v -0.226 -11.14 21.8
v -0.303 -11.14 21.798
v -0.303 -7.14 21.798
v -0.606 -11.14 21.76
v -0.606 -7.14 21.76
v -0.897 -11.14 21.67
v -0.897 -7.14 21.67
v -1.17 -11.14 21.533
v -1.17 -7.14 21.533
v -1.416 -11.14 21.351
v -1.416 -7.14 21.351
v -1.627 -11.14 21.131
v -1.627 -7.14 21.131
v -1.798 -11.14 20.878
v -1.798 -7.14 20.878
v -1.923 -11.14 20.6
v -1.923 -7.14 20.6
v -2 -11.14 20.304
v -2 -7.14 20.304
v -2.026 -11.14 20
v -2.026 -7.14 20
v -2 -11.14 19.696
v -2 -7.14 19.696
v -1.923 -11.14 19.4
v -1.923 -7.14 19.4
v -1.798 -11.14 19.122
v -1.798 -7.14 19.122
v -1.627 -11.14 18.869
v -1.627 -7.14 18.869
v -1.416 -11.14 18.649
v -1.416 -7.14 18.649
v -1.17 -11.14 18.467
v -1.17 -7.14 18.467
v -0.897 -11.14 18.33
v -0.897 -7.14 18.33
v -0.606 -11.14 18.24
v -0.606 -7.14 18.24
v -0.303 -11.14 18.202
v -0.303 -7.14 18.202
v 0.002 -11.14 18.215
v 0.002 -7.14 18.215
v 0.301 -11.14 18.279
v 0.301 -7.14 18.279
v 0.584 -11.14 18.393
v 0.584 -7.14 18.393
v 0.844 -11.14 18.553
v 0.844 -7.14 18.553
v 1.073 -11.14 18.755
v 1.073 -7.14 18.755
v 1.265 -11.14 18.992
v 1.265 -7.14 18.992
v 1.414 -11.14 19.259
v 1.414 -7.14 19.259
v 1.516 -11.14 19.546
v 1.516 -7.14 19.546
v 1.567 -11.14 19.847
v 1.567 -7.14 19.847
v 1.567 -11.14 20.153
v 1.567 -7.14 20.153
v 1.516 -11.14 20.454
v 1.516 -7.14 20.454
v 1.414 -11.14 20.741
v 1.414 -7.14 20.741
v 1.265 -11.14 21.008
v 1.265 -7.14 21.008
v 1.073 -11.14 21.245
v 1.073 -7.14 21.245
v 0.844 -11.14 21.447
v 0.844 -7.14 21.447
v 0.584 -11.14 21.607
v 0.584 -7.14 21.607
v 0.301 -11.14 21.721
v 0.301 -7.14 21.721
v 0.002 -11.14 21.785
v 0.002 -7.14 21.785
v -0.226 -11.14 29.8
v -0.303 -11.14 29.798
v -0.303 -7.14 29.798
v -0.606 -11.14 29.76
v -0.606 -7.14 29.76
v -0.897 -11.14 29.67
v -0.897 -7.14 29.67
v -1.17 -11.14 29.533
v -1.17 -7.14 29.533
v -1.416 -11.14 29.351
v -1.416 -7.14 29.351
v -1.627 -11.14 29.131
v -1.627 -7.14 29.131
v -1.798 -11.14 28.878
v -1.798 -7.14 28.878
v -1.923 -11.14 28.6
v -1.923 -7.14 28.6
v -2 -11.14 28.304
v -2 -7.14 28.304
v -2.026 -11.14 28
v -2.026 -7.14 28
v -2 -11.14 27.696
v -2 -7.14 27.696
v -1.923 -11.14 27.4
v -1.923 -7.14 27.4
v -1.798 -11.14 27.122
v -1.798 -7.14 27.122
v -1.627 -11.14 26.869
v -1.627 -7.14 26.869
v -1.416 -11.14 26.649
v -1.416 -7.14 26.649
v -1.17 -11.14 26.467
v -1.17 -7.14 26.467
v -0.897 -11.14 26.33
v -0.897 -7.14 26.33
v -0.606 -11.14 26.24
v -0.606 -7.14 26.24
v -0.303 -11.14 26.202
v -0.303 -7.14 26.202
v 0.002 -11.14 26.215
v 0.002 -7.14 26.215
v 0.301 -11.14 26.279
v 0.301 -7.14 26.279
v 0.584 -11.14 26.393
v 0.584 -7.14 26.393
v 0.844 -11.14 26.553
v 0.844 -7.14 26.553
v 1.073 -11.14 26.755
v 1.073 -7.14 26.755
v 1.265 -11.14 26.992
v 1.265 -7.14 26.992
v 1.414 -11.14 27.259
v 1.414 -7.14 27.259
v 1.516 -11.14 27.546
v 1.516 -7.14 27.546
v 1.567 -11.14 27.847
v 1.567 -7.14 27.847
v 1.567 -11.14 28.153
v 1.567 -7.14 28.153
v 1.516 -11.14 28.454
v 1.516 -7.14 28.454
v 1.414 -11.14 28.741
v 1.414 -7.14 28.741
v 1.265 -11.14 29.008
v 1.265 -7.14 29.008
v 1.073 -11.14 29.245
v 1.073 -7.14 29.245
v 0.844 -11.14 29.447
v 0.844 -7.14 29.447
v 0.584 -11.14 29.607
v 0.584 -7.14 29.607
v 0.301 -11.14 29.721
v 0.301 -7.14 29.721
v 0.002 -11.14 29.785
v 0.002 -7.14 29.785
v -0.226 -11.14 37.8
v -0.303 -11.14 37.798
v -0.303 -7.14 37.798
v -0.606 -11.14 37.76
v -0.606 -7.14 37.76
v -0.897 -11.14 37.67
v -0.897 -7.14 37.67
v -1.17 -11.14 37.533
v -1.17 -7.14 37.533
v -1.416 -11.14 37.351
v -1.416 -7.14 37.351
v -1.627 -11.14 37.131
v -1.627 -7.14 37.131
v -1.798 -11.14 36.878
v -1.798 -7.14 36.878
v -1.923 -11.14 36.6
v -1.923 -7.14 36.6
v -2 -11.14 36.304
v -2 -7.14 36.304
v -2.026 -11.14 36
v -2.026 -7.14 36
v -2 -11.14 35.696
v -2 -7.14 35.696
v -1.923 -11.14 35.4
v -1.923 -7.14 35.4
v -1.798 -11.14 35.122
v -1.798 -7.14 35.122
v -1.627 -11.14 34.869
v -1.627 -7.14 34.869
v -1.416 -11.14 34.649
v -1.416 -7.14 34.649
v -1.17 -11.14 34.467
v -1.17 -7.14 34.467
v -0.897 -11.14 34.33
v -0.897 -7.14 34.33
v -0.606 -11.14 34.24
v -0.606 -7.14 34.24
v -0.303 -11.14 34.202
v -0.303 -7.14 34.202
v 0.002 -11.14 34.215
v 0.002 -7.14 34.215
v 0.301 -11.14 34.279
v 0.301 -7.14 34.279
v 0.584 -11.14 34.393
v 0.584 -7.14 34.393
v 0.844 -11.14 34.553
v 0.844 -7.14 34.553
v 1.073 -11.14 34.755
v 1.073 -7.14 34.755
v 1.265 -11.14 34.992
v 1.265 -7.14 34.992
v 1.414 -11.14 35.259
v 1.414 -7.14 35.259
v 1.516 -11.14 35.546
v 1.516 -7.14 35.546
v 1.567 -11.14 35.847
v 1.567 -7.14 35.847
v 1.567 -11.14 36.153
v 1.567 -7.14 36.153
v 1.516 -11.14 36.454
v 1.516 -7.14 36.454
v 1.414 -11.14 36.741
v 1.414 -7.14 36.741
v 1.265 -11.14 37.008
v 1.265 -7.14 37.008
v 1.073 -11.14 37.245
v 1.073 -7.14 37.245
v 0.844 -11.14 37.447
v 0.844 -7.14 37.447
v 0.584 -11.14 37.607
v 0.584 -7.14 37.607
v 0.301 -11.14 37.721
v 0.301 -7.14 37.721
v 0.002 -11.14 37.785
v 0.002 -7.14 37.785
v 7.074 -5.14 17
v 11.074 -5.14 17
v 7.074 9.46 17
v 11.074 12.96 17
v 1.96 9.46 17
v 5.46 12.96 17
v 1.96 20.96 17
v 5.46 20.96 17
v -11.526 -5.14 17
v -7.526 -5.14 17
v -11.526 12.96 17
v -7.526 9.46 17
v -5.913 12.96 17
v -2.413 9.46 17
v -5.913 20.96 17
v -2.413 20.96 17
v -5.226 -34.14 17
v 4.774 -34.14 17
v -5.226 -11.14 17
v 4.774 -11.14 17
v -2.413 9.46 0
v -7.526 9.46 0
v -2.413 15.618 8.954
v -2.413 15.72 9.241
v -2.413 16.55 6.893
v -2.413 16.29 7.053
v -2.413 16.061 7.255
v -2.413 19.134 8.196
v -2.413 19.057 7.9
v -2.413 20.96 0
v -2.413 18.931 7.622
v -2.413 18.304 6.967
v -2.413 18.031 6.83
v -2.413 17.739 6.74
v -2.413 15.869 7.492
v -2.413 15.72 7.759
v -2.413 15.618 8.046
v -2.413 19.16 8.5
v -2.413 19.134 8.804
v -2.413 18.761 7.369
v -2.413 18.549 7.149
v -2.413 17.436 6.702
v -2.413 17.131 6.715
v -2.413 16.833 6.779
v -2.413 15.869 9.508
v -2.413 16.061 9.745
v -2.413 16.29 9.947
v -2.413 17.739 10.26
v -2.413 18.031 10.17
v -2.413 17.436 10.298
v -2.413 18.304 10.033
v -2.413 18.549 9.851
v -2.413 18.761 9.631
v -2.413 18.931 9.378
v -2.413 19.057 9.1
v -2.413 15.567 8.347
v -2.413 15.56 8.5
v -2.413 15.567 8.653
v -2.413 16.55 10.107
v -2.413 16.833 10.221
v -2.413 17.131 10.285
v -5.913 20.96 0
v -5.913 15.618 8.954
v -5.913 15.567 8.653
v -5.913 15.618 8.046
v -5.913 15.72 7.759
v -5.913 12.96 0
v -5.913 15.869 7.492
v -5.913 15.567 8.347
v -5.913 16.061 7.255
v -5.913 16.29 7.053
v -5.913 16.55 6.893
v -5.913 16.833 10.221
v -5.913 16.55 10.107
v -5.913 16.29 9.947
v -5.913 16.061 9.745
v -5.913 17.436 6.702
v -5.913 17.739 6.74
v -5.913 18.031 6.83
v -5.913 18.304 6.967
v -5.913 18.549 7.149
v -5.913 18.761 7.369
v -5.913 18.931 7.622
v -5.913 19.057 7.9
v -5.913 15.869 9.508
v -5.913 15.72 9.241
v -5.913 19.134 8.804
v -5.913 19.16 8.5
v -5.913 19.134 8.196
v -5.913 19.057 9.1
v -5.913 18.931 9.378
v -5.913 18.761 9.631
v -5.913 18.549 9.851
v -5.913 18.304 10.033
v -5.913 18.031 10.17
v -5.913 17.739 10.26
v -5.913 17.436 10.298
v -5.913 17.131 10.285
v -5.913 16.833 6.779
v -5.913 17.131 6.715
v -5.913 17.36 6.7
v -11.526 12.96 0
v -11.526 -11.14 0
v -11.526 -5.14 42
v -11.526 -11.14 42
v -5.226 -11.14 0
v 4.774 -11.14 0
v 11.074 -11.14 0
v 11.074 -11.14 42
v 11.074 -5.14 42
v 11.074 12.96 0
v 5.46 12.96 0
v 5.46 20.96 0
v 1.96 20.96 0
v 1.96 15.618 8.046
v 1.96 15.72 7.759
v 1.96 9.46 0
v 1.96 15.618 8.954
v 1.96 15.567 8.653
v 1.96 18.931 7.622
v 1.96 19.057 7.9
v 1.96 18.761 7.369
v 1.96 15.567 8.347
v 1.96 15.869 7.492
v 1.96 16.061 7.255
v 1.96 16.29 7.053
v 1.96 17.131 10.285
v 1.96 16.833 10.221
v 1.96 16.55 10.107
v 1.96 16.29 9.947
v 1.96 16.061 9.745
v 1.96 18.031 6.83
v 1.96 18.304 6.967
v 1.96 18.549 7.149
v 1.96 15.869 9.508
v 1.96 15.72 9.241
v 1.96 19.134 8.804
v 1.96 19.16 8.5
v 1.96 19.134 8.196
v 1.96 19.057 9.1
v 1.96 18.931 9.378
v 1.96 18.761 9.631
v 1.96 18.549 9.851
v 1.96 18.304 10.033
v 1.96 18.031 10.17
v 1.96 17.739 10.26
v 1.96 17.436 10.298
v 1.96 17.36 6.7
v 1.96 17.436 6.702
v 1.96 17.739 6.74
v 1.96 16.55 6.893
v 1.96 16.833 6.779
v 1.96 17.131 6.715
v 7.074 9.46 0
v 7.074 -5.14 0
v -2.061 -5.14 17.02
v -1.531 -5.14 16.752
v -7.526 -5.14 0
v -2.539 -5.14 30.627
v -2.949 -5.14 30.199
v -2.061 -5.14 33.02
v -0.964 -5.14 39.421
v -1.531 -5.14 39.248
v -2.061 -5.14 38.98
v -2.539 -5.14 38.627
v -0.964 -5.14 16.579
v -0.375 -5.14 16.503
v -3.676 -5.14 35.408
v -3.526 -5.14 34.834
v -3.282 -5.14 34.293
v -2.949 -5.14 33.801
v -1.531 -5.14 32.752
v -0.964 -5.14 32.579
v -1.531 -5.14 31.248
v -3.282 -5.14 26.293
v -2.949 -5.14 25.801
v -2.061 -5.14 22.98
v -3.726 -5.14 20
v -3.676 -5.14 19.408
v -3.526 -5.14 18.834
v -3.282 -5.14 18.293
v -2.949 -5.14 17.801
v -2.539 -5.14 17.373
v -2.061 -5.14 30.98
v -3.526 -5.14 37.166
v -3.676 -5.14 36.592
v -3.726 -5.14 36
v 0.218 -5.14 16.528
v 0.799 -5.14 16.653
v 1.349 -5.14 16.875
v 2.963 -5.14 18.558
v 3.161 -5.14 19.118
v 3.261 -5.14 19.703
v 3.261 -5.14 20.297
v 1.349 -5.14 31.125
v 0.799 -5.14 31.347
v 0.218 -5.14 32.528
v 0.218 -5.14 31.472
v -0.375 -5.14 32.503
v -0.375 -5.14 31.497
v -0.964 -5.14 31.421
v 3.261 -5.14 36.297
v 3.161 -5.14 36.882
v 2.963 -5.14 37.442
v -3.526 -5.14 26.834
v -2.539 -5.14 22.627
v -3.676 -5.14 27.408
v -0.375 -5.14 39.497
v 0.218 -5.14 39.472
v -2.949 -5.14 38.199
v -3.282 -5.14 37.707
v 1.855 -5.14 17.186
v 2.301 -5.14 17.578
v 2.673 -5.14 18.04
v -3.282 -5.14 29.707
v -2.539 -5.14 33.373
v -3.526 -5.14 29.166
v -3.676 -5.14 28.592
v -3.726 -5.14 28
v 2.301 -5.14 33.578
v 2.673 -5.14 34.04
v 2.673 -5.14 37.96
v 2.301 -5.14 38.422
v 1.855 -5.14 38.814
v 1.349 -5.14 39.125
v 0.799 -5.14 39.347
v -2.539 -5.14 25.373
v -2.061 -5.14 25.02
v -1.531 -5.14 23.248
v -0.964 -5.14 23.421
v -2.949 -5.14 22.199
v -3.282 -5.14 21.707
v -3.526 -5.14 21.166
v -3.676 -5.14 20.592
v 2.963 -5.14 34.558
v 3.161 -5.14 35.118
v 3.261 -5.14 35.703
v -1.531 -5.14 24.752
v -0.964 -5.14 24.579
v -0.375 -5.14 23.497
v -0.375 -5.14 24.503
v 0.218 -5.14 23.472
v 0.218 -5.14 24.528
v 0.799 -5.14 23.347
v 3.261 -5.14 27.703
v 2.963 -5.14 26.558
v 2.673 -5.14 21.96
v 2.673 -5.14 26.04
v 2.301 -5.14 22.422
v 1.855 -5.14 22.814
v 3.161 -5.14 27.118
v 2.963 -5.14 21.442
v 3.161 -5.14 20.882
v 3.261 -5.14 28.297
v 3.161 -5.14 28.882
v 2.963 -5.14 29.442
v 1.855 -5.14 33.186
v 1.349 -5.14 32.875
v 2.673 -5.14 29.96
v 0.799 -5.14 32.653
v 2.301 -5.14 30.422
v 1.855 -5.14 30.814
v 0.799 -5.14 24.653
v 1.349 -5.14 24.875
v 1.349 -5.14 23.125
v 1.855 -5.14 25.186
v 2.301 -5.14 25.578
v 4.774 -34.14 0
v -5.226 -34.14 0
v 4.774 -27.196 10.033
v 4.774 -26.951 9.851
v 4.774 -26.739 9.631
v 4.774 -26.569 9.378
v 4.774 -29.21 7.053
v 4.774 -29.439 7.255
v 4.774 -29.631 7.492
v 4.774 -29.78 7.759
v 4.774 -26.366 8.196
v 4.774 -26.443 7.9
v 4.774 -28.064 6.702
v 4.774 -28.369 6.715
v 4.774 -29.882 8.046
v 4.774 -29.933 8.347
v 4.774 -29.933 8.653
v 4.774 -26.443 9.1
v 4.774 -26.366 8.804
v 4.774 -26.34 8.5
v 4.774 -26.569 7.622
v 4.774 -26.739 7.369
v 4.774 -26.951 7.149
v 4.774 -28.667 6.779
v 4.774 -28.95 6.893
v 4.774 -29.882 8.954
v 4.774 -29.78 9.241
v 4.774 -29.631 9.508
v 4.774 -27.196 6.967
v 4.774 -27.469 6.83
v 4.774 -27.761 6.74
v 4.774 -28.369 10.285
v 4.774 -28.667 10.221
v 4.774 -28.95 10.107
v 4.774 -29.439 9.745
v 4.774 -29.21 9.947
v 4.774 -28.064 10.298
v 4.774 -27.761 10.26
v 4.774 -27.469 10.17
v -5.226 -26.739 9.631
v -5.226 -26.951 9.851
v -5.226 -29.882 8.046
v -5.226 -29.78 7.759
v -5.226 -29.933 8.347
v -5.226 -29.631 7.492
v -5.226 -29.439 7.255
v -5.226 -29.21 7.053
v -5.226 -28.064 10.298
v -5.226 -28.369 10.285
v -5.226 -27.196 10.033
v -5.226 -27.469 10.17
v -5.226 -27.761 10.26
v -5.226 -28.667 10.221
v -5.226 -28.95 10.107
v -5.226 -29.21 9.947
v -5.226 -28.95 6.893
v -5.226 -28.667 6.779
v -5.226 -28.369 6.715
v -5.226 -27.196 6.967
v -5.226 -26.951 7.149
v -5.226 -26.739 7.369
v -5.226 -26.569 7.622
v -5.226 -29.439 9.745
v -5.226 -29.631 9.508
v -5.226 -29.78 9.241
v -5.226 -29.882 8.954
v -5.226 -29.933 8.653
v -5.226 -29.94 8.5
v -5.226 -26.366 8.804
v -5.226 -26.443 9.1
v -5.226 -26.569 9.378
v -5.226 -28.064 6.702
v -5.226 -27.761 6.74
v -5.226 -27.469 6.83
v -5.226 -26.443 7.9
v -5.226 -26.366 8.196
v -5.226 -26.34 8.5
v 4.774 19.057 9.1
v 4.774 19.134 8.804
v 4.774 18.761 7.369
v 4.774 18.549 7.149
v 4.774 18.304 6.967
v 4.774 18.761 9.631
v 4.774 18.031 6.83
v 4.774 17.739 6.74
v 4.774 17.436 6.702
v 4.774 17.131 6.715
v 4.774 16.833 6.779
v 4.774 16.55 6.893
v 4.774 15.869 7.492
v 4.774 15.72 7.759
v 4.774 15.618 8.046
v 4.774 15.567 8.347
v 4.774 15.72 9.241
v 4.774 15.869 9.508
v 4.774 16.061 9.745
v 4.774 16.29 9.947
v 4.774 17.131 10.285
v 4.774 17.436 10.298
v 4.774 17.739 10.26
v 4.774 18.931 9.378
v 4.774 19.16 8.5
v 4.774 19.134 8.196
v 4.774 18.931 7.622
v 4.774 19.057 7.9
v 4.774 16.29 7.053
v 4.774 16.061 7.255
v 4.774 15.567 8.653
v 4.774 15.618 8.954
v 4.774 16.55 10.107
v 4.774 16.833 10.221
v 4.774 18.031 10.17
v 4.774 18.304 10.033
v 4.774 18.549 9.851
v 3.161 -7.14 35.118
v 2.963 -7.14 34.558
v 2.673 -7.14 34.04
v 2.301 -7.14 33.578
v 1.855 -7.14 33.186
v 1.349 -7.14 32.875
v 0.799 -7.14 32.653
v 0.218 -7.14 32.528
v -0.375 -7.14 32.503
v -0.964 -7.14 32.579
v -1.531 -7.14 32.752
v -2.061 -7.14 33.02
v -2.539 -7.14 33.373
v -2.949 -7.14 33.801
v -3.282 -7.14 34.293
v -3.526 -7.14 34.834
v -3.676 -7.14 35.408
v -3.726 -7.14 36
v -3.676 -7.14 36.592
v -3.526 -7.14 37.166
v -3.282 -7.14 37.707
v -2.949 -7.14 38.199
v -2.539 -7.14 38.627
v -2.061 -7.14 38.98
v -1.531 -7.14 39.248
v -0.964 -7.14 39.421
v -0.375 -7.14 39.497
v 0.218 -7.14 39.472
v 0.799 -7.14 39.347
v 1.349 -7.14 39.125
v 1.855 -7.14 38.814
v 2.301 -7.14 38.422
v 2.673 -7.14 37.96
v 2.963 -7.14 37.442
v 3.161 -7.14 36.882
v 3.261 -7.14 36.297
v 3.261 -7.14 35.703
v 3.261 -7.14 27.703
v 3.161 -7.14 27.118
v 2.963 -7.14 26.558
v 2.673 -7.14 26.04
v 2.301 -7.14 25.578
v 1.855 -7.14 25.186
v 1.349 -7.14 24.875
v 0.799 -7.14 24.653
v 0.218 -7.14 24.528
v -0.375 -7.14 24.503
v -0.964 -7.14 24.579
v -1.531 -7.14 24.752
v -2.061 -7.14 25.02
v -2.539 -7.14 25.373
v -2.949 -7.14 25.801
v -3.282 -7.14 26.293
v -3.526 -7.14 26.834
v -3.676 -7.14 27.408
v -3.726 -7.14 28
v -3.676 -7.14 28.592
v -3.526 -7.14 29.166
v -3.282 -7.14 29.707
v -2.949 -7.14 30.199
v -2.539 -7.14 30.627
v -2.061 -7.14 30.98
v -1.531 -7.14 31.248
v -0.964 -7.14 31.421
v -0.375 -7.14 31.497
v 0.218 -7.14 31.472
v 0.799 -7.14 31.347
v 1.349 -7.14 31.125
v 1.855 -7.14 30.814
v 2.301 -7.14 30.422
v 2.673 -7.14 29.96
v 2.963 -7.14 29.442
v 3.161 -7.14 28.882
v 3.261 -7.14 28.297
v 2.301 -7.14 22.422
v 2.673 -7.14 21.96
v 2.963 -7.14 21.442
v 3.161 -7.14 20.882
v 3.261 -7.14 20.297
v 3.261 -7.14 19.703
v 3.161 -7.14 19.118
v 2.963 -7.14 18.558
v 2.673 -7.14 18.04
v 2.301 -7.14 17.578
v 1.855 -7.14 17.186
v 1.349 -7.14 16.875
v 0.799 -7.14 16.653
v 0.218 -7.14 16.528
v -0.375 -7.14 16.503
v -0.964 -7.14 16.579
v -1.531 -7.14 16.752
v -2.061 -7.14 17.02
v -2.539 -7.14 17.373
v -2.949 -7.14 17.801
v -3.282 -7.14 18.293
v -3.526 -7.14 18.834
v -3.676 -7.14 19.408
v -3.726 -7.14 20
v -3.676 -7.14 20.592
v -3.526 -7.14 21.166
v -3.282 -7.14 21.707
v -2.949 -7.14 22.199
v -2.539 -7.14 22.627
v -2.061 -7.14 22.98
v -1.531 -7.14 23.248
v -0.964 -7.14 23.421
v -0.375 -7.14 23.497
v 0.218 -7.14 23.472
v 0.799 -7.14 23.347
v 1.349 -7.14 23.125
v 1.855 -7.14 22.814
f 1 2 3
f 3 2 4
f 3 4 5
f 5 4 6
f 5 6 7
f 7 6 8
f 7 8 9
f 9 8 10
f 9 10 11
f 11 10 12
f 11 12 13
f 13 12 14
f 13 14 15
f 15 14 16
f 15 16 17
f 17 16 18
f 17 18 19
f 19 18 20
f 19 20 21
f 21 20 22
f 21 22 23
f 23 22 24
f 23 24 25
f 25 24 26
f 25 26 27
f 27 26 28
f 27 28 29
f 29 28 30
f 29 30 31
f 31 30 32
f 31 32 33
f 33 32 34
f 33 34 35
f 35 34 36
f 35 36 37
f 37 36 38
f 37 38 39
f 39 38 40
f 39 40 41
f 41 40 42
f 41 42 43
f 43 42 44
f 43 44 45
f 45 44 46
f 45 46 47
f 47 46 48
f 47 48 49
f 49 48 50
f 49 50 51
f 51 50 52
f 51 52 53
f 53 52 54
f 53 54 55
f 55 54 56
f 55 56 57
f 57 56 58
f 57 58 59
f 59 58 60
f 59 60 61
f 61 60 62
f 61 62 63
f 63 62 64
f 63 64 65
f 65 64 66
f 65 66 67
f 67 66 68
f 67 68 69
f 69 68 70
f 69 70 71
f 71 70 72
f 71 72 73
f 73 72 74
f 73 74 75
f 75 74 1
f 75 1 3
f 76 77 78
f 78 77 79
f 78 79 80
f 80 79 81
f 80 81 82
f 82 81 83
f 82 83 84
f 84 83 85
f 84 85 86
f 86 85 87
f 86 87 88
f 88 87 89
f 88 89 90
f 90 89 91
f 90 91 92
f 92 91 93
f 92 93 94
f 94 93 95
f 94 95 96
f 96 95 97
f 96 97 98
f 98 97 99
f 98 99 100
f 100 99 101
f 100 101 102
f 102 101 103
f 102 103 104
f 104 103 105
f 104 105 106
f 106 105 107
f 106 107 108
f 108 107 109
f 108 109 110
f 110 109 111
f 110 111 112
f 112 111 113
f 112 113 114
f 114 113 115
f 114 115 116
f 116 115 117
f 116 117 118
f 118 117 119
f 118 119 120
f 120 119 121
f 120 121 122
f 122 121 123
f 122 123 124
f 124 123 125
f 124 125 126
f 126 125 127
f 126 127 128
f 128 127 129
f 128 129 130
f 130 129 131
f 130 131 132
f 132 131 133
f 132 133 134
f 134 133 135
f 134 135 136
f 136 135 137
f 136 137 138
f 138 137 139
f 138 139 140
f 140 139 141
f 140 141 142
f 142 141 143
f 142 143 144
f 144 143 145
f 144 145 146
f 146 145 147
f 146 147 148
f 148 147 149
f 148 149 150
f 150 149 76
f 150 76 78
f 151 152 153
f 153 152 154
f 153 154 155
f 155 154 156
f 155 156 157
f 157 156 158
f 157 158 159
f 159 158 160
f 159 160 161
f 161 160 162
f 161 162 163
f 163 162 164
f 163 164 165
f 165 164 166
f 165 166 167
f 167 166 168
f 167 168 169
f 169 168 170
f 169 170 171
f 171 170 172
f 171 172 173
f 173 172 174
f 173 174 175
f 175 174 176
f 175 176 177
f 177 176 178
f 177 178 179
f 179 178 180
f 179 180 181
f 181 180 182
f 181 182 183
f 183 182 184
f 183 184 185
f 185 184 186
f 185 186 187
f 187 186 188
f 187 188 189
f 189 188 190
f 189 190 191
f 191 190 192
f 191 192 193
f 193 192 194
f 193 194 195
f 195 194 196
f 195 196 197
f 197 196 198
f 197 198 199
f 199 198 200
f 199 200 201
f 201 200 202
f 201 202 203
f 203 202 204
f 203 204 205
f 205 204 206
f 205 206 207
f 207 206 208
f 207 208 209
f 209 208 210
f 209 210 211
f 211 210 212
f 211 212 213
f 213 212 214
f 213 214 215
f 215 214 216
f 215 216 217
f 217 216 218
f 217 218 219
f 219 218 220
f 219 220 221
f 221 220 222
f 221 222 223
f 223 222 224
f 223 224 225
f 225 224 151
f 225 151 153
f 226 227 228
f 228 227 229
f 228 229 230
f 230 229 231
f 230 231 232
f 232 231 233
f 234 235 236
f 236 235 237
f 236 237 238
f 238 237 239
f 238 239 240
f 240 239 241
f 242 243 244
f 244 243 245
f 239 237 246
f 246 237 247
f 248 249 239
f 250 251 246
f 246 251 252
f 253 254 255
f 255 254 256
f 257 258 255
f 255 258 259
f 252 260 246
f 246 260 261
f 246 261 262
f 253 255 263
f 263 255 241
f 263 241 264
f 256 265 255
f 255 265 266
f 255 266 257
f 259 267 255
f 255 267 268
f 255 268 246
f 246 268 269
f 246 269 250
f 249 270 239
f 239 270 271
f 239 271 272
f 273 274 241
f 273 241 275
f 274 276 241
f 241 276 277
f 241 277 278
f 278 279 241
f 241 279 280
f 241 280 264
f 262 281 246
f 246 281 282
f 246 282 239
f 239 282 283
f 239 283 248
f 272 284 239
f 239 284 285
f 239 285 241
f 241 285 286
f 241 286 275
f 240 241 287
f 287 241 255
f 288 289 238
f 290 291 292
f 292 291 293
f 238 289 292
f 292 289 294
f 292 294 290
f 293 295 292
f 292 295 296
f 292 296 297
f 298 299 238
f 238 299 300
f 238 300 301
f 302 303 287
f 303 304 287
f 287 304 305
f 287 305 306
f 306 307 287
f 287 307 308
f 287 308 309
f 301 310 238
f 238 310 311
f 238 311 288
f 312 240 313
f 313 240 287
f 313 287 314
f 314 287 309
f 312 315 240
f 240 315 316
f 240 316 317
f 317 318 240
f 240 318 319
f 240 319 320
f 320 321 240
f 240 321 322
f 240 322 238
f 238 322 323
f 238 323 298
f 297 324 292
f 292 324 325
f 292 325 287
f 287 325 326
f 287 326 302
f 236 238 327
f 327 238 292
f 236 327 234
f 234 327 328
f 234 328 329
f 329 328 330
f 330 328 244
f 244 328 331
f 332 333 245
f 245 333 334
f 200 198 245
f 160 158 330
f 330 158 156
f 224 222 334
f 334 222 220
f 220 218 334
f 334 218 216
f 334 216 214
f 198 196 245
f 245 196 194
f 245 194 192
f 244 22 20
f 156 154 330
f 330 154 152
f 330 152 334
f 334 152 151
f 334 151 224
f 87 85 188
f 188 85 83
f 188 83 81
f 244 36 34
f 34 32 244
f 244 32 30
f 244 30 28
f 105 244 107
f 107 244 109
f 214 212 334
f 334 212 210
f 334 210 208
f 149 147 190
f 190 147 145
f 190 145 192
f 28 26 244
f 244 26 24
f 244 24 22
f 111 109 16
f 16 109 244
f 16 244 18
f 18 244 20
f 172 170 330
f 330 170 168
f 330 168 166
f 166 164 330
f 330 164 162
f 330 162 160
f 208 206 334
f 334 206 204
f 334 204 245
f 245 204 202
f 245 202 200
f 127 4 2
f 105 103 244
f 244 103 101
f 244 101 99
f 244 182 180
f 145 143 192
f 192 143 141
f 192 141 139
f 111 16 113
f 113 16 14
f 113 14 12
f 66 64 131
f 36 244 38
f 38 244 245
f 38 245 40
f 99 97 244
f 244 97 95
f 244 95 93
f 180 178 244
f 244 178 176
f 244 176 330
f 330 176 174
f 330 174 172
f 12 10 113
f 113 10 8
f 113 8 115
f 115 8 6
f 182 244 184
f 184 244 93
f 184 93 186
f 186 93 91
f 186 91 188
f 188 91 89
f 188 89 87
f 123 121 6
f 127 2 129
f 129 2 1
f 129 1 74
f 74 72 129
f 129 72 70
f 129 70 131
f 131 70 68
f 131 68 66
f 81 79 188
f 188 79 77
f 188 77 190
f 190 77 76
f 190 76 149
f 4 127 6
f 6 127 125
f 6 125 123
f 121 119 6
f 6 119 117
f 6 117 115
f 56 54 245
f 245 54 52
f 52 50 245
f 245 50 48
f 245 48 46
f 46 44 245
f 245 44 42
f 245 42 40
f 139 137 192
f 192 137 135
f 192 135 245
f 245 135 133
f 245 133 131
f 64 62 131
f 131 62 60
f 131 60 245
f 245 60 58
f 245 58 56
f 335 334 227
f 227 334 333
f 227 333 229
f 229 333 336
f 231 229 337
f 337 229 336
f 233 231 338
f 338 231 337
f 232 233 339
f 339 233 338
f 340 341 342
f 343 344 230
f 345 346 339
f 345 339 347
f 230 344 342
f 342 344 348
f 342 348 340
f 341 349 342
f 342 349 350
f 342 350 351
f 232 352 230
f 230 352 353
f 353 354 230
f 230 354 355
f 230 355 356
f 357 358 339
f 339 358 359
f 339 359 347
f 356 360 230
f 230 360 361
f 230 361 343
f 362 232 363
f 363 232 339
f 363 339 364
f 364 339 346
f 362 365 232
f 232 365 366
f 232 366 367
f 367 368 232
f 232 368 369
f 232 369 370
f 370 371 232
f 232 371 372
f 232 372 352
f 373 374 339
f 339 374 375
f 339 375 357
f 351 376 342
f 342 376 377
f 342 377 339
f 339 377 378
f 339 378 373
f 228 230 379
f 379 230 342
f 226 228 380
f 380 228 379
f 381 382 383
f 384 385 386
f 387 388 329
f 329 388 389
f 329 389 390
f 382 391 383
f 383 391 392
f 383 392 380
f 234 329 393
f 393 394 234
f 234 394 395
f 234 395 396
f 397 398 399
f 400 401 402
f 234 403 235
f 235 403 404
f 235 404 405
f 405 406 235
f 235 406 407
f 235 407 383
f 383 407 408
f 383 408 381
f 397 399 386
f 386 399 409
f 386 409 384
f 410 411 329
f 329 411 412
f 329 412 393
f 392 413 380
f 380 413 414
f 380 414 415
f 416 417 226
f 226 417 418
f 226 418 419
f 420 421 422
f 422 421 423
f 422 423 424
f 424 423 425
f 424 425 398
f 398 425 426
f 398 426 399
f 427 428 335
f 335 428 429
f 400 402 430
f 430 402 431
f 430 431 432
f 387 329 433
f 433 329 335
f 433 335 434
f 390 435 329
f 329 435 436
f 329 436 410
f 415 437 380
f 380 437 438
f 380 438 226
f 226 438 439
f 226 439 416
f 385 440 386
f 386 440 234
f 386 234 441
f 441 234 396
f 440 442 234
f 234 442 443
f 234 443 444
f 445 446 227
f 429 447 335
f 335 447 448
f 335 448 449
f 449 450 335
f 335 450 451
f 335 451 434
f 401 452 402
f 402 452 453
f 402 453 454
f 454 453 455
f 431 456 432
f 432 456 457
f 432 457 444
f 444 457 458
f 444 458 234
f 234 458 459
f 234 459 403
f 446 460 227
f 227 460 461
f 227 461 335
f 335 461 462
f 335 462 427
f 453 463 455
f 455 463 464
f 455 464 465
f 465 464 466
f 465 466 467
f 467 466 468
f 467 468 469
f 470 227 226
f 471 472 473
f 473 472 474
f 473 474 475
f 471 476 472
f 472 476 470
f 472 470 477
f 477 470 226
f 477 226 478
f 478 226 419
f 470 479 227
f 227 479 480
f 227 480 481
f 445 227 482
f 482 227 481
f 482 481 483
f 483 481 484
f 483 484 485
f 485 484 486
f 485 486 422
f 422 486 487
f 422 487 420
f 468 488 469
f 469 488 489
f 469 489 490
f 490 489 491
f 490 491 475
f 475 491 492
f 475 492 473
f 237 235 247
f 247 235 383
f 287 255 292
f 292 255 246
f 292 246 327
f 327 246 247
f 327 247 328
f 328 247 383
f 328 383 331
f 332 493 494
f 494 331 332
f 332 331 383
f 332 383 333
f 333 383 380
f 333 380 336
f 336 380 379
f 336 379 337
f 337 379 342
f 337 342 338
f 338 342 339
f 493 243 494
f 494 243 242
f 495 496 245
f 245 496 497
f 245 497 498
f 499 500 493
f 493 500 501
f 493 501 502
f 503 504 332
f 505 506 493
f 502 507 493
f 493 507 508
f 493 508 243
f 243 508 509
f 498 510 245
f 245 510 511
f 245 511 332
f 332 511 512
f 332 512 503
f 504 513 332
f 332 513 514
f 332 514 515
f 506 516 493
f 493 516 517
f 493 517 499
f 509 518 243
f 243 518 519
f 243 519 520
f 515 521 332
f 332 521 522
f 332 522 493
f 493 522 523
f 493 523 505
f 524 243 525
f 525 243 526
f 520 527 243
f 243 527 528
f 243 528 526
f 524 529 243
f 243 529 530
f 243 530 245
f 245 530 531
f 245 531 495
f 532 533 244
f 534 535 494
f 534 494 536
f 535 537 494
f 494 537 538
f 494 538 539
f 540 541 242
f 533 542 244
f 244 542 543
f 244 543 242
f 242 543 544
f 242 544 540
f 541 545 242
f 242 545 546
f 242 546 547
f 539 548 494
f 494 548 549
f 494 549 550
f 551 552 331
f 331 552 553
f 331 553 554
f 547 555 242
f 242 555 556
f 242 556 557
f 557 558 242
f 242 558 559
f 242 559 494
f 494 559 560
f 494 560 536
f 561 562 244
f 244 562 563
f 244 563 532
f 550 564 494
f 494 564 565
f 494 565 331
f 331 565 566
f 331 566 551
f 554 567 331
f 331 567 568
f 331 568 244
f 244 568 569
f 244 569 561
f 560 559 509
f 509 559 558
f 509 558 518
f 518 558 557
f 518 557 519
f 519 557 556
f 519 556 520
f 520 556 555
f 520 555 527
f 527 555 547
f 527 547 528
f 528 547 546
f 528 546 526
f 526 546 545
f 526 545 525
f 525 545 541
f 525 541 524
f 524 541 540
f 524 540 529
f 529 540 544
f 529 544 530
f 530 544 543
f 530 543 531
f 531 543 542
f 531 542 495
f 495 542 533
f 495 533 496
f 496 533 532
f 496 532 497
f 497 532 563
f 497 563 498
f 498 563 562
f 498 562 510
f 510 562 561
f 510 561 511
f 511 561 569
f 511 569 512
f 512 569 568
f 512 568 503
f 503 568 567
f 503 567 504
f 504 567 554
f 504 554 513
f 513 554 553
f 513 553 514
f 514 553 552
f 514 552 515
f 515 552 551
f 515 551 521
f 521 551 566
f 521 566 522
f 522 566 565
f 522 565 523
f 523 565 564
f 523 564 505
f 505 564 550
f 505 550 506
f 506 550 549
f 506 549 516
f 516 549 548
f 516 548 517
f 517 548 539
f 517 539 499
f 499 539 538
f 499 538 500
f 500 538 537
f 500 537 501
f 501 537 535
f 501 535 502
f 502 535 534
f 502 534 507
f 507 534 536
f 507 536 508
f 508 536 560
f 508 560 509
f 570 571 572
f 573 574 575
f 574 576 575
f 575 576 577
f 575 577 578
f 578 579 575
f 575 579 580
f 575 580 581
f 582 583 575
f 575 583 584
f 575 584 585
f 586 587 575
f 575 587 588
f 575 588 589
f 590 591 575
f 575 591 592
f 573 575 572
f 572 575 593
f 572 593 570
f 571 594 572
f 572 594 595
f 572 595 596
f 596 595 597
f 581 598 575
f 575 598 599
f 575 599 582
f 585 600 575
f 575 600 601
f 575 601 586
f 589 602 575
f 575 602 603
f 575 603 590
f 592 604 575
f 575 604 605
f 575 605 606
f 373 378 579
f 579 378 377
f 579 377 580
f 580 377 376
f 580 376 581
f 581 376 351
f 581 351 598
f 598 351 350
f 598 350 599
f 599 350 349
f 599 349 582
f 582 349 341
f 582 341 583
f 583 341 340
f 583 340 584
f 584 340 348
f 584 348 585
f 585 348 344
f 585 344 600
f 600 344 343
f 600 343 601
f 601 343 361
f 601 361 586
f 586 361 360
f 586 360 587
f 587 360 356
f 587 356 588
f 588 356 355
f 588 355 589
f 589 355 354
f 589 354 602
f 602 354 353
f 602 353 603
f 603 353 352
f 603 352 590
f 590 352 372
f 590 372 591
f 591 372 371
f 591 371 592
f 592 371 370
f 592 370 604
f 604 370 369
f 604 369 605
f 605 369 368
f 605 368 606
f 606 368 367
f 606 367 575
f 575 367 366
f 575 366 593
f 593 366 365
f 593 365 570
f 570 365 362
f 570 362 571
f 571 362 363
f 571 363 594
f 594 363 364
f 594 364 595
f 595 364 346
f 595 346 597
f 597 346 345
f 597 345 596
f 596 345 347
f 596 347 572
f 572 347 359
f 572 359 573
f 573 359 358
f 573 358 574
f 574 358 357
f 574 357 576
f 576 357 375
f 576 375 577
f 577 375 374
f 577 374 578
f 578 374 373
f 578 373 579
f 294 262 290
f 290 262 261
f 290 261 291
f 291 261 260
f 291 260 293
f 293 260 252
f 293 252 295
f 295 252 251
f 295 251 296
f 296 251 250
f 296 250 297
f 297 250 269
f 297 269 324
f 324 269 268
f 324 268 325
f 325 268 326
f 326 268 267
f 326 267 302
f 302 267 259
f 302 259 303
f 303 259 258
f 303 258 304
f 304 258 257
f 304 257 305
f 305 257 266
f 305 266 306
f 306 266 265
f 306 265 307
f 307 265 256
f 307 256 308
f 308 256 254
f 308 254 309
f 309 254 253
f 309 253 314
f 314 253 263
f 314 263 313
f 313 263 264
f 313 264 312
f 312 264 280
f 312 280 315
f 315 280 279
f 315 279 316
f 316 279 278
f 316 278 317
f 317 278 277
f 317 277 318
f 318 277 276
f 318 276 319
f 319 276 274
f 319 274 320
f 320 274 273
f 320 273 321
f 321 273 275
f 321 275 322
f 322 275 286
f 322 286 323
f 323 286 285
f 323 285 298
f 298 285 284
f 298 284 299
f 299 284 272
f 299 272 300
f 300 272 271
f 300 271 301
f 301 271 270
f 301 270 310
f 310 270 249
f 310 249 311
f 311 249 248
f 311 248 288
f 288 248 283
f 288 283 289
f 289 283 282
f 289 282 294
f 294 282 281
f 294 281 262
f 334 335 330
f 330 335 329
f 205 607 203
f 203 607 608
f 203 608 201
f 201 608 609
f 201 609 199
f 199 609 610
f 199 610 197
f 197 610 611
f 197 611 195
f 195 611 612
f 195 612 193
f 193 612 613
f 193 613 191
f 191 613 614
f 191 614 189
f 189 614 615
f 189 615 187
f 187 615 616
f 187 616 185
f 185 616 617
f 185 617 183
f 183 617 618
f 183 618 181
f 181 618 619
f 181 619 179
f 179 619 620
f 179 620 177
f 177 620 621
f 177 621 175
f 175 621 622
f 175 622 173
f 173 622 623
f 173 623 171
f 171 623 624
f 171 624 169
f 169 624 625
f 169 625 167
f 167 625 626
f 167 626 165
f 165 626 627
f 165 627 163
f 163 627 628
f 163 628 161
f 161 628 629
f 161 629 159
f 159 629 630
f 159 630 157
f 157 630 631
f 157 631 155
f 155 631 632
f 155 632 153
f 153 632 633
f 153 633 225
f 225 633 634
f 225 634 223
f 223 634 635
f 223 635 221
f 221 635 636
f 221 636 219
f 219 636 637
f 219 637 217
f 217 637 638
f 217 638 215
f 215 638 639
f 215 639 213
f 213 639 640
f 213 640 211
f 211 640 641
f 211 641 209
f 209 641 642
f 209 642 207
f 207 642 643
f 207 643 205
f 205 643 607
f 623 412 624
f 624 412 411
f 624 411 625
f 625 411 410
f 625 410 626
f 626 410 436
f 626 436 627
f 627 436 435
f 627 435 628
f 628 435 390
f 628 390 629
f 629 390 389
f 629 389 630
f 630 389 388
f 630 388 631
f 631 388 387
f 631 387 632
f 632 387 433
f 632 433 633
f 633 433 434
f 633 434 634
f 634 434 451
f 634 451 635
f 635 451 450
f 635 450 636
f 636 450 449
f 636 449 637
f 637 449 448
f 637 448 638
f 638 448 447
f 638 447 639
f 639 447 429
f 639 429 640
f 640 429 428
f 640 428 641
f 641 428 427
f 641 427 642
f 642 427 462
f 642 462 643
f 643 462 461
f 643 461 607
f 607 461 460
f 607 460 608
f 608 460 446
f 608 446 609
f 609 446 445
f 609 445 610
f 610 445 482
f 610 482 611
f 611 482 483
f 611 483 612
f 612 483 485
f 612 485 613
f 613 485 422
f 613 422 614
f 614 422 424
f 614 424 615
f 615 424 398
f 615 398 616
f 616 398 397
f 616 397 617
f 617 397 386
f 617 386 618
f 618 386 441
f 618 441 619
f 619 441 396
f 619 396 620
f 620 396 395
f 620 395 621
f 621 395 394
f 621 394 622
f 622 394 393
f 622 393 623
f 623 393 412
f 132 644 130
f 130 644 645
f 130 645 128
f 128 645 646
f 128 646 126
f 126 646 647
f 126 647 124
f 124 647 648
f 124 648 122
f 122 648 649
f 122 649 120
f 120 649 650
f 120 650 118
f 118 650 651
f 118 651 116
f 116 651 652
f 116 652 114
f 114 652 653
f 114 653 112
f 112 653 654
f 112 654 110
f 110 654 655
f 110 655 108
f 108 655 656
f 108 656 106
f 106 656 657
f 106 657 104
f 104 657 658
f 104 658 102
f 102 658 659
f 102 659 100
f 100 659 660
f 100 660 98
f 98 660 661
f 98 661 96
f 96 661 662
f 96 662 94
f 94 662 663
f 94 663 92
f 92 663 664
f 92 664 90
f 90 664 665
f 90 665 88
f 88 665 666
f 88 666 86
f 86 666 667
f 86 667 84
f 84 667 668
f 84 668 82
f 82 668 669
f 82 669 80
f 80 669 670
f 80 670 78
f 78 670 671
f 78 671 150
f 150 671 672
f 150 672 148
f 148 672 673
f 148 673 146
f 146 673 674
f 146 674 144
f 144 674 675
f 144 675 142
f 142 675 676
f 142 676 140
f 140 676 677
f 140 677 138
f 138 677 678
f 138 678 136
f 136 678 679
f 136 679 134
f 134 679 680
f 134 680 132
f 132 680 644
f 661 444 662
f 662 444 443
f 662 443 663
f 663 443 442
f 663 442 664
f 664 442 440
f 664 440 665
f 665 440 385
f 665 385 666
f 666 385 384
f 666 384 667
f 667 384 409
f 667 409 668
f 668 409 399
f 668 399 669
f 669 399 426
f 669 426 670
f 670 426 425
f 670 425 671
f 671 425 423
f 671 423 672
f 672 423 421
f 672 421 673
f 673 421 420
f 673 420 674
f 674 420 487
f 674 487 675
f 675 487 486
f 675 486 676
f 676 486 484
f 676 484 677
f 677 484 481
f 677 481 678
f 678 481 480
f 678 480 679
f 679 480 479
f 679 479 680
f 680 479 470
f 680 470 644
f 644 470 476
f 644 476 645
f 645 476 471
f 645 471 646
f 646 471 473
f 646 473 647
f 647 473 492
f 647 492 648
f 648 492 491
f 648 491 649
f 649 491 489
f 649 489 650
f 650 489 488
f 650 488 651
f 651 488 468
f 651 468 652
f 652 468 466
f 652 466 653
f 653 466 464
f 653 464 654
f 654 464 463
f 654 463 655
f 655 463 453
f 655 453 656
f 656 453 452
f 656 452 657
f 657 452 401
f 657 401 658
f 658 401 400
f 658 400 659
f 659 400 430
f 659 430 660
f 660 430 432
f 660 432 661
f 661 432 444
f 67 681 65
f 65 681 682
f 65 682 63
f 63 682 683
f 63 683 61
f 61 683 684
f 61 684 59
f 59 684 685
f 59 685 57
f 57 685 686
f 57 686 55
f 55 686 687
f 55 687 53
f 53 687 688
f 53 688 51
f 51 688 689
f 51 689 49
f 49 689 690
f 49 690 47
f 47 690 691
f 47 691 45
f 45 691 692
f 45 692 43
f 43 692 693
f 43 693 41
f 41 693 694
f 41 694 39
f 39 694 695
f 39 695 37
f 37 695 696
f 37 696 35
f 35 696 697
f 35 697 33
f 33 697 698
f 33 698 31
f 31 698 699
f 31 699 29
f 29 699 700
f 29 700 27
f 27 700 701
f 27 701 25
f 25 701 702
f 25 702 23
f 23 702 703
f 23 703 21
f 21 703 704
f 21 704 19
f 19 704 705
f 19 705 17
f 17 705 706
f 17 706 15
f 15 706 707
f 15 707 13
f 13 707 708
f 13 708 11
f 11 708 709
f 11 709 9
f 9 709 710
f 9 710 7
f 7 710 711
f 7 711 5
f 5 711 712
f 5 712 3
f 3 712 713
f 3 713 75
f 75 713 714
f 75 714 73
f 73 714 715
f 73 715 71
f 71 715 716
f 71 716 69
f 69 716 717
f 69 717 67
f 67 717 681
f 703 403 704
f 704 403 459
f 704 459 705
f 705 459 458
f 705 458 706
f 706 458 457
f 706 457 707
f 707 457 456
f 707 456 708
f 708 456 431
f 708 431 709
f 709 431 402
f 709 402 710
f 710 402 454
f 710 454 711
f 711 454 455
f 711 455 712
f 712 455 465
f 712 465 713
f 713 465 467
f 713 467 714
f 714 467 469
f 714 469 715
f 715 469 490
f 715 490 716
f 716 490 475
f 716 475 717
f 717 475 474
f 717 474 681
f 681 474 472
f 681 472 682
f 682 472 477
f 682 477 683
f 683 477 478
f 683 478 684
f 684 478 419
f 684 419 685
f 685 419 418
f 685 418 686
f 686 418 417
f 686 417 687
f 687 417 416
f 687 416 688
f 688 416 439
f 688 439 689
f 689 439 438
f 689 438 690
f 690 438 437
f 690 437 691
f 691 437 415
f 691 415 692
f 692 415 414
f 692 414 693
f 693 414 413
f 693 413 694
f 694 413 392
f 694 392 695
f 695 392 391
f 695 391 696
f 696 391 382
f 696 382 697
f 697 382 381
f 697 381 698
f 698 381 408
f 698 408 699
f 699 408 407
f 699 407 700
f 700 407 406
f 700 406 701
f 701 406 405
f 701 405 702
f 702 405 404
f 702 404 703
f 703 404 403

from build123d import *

# Parameters (mm, degrees)
BOSS_EXTRUDE1_DEPTH = 17
SKETCH3_W           = 10
SKETCH3_H           = 23
BOSS_EXTRUDE2_DEPTH = 17
SKETCH4_R           = 1.8
CUT_EXTRUDE1_DEPTH  = 42.475618626
SKETCH5_W           = 22.6
SKETCH5_H           = 6
BOSS_EXTRUDE3_DEPTH = 25
SKETCH6_R           = 1.8
CUT_EXTRUDE2_DEPTH  = 53.324521174
SKETCH7_R           = 3.5
CUT_EXTRUDE3_DEPTH  = 2


with BuildPart() as part:
    # Sketch2 → Boss-Extrude1 (new body)
    with BuildSketch(Plane.XY):
        Polygon((-7.526296722, 9.460038951), (-7.526296722, -5.139961049), (7.073703278, -5.139961049), (7.073703278, 9.460038951), (1.960317302, 9.460038951), (1.960317302, 20.960038951), (5.460317302, 20.960038951), (5.460317302, 12.960038951), (11.073703278, 12.960038951), (11.073703278, -11.139961049), (-11.526296722, -11.139961049), (-11.526296722, 12.960038951), (-5.912910746, 12.960038951), (-5.912910746, 20.960038951), (-2.412910746, 20.960038951), (-2.412910746, 9.460038951), align=None)
    extrude(amount=BOSS_EXTRUDE1_DEPTH)

    # Sketch3 → Boss-Extrude2 (add)
    with BuildSketch(Plane.XY.offset(17)):
        with Locations((-0.226296722, -22.639961049)):
            Rectangle(SKETCH3_W, SKETCH3_H)
    extrude(amount=-BOSS_EXTRUDE2_DEPTH)

    # Sketch4 → Cut-Extrude1 (cut, through all)
    with BuildSketch(Plane(origin=(4.773703278, 0, 0), x_dir=(0, 0, -1), z_dir=(1, 0, 0))):
        with Locations(Location((-8.5, -28.139961049, 0), (0, 0, 90))):
            Circle(SKETCH4_R)
        with Locations(Location((-8.5, 17.360038951, 0), (0, 0, 90))):
            Circle(SKETCH4_R)
    extrude(amount=-CUT_EXTRUDE1_DEPTH, mode=Mode.SUBTRACT)

    # Sketch5 → Boss-Extrude3 (add)
    with BuildSketch(Plane.XY.offset(17)):
        with Locations((-0.226296722, -8.139961049)):
            Rectangle(SKETCH5_W, SKETCH5_H)
    extrude(amount=BOSS_EXTRUDE3_DEPTH)

    # Sketch6 → Cut-Extrude2 (cut, through all)
    with BuildSketch(Plane(origin=(0, -5.139961049, 0), x_dir=(1, 0, 0), z_dir=(0, 1, 0))):
        with Locations(Location((-0.226296722, -36, 0), (0, 0, 180))):
            Circle(SKETCH6_R)
        with Locations(Location((-0.226296722, -28, 0), (0, 0, 180))):
            Circle(SKETCH6_R)
        with Locations(Location((-0.226296722, -20, 0), (0, 0, 180))):
            Circle(SKETCH6_R)
    extrude(amount=-CUT_EXTRUDE2_DEPTH, mode=Mode.SUBTRACT)

    # Sketch7 → Cut-Extrude3 (cut)
    with BuildSketch(Plane(origin=(0, -5.139961049, 0), x_dir=(1, 0, 0), z_dir=(0, 1, 0))):
        with Locations(Location((-0.226296722, -36, 0), (0, 0, 180))):
            Circle(SKETCH7_R)
        with Locations(Location((-0.226296722, -28, 0), (0, 0, 180))):
            Circle(SKETCH7_R)
        with Locations(Location((-0.226296722, -20, 0), (0, 0, 180))):
            Circle(SKETCH7_R)
    extrude(amount=-CUT_EXTRUDE3_DEPTH, mode=Mode.SUBTRACT)


solid = part.part
